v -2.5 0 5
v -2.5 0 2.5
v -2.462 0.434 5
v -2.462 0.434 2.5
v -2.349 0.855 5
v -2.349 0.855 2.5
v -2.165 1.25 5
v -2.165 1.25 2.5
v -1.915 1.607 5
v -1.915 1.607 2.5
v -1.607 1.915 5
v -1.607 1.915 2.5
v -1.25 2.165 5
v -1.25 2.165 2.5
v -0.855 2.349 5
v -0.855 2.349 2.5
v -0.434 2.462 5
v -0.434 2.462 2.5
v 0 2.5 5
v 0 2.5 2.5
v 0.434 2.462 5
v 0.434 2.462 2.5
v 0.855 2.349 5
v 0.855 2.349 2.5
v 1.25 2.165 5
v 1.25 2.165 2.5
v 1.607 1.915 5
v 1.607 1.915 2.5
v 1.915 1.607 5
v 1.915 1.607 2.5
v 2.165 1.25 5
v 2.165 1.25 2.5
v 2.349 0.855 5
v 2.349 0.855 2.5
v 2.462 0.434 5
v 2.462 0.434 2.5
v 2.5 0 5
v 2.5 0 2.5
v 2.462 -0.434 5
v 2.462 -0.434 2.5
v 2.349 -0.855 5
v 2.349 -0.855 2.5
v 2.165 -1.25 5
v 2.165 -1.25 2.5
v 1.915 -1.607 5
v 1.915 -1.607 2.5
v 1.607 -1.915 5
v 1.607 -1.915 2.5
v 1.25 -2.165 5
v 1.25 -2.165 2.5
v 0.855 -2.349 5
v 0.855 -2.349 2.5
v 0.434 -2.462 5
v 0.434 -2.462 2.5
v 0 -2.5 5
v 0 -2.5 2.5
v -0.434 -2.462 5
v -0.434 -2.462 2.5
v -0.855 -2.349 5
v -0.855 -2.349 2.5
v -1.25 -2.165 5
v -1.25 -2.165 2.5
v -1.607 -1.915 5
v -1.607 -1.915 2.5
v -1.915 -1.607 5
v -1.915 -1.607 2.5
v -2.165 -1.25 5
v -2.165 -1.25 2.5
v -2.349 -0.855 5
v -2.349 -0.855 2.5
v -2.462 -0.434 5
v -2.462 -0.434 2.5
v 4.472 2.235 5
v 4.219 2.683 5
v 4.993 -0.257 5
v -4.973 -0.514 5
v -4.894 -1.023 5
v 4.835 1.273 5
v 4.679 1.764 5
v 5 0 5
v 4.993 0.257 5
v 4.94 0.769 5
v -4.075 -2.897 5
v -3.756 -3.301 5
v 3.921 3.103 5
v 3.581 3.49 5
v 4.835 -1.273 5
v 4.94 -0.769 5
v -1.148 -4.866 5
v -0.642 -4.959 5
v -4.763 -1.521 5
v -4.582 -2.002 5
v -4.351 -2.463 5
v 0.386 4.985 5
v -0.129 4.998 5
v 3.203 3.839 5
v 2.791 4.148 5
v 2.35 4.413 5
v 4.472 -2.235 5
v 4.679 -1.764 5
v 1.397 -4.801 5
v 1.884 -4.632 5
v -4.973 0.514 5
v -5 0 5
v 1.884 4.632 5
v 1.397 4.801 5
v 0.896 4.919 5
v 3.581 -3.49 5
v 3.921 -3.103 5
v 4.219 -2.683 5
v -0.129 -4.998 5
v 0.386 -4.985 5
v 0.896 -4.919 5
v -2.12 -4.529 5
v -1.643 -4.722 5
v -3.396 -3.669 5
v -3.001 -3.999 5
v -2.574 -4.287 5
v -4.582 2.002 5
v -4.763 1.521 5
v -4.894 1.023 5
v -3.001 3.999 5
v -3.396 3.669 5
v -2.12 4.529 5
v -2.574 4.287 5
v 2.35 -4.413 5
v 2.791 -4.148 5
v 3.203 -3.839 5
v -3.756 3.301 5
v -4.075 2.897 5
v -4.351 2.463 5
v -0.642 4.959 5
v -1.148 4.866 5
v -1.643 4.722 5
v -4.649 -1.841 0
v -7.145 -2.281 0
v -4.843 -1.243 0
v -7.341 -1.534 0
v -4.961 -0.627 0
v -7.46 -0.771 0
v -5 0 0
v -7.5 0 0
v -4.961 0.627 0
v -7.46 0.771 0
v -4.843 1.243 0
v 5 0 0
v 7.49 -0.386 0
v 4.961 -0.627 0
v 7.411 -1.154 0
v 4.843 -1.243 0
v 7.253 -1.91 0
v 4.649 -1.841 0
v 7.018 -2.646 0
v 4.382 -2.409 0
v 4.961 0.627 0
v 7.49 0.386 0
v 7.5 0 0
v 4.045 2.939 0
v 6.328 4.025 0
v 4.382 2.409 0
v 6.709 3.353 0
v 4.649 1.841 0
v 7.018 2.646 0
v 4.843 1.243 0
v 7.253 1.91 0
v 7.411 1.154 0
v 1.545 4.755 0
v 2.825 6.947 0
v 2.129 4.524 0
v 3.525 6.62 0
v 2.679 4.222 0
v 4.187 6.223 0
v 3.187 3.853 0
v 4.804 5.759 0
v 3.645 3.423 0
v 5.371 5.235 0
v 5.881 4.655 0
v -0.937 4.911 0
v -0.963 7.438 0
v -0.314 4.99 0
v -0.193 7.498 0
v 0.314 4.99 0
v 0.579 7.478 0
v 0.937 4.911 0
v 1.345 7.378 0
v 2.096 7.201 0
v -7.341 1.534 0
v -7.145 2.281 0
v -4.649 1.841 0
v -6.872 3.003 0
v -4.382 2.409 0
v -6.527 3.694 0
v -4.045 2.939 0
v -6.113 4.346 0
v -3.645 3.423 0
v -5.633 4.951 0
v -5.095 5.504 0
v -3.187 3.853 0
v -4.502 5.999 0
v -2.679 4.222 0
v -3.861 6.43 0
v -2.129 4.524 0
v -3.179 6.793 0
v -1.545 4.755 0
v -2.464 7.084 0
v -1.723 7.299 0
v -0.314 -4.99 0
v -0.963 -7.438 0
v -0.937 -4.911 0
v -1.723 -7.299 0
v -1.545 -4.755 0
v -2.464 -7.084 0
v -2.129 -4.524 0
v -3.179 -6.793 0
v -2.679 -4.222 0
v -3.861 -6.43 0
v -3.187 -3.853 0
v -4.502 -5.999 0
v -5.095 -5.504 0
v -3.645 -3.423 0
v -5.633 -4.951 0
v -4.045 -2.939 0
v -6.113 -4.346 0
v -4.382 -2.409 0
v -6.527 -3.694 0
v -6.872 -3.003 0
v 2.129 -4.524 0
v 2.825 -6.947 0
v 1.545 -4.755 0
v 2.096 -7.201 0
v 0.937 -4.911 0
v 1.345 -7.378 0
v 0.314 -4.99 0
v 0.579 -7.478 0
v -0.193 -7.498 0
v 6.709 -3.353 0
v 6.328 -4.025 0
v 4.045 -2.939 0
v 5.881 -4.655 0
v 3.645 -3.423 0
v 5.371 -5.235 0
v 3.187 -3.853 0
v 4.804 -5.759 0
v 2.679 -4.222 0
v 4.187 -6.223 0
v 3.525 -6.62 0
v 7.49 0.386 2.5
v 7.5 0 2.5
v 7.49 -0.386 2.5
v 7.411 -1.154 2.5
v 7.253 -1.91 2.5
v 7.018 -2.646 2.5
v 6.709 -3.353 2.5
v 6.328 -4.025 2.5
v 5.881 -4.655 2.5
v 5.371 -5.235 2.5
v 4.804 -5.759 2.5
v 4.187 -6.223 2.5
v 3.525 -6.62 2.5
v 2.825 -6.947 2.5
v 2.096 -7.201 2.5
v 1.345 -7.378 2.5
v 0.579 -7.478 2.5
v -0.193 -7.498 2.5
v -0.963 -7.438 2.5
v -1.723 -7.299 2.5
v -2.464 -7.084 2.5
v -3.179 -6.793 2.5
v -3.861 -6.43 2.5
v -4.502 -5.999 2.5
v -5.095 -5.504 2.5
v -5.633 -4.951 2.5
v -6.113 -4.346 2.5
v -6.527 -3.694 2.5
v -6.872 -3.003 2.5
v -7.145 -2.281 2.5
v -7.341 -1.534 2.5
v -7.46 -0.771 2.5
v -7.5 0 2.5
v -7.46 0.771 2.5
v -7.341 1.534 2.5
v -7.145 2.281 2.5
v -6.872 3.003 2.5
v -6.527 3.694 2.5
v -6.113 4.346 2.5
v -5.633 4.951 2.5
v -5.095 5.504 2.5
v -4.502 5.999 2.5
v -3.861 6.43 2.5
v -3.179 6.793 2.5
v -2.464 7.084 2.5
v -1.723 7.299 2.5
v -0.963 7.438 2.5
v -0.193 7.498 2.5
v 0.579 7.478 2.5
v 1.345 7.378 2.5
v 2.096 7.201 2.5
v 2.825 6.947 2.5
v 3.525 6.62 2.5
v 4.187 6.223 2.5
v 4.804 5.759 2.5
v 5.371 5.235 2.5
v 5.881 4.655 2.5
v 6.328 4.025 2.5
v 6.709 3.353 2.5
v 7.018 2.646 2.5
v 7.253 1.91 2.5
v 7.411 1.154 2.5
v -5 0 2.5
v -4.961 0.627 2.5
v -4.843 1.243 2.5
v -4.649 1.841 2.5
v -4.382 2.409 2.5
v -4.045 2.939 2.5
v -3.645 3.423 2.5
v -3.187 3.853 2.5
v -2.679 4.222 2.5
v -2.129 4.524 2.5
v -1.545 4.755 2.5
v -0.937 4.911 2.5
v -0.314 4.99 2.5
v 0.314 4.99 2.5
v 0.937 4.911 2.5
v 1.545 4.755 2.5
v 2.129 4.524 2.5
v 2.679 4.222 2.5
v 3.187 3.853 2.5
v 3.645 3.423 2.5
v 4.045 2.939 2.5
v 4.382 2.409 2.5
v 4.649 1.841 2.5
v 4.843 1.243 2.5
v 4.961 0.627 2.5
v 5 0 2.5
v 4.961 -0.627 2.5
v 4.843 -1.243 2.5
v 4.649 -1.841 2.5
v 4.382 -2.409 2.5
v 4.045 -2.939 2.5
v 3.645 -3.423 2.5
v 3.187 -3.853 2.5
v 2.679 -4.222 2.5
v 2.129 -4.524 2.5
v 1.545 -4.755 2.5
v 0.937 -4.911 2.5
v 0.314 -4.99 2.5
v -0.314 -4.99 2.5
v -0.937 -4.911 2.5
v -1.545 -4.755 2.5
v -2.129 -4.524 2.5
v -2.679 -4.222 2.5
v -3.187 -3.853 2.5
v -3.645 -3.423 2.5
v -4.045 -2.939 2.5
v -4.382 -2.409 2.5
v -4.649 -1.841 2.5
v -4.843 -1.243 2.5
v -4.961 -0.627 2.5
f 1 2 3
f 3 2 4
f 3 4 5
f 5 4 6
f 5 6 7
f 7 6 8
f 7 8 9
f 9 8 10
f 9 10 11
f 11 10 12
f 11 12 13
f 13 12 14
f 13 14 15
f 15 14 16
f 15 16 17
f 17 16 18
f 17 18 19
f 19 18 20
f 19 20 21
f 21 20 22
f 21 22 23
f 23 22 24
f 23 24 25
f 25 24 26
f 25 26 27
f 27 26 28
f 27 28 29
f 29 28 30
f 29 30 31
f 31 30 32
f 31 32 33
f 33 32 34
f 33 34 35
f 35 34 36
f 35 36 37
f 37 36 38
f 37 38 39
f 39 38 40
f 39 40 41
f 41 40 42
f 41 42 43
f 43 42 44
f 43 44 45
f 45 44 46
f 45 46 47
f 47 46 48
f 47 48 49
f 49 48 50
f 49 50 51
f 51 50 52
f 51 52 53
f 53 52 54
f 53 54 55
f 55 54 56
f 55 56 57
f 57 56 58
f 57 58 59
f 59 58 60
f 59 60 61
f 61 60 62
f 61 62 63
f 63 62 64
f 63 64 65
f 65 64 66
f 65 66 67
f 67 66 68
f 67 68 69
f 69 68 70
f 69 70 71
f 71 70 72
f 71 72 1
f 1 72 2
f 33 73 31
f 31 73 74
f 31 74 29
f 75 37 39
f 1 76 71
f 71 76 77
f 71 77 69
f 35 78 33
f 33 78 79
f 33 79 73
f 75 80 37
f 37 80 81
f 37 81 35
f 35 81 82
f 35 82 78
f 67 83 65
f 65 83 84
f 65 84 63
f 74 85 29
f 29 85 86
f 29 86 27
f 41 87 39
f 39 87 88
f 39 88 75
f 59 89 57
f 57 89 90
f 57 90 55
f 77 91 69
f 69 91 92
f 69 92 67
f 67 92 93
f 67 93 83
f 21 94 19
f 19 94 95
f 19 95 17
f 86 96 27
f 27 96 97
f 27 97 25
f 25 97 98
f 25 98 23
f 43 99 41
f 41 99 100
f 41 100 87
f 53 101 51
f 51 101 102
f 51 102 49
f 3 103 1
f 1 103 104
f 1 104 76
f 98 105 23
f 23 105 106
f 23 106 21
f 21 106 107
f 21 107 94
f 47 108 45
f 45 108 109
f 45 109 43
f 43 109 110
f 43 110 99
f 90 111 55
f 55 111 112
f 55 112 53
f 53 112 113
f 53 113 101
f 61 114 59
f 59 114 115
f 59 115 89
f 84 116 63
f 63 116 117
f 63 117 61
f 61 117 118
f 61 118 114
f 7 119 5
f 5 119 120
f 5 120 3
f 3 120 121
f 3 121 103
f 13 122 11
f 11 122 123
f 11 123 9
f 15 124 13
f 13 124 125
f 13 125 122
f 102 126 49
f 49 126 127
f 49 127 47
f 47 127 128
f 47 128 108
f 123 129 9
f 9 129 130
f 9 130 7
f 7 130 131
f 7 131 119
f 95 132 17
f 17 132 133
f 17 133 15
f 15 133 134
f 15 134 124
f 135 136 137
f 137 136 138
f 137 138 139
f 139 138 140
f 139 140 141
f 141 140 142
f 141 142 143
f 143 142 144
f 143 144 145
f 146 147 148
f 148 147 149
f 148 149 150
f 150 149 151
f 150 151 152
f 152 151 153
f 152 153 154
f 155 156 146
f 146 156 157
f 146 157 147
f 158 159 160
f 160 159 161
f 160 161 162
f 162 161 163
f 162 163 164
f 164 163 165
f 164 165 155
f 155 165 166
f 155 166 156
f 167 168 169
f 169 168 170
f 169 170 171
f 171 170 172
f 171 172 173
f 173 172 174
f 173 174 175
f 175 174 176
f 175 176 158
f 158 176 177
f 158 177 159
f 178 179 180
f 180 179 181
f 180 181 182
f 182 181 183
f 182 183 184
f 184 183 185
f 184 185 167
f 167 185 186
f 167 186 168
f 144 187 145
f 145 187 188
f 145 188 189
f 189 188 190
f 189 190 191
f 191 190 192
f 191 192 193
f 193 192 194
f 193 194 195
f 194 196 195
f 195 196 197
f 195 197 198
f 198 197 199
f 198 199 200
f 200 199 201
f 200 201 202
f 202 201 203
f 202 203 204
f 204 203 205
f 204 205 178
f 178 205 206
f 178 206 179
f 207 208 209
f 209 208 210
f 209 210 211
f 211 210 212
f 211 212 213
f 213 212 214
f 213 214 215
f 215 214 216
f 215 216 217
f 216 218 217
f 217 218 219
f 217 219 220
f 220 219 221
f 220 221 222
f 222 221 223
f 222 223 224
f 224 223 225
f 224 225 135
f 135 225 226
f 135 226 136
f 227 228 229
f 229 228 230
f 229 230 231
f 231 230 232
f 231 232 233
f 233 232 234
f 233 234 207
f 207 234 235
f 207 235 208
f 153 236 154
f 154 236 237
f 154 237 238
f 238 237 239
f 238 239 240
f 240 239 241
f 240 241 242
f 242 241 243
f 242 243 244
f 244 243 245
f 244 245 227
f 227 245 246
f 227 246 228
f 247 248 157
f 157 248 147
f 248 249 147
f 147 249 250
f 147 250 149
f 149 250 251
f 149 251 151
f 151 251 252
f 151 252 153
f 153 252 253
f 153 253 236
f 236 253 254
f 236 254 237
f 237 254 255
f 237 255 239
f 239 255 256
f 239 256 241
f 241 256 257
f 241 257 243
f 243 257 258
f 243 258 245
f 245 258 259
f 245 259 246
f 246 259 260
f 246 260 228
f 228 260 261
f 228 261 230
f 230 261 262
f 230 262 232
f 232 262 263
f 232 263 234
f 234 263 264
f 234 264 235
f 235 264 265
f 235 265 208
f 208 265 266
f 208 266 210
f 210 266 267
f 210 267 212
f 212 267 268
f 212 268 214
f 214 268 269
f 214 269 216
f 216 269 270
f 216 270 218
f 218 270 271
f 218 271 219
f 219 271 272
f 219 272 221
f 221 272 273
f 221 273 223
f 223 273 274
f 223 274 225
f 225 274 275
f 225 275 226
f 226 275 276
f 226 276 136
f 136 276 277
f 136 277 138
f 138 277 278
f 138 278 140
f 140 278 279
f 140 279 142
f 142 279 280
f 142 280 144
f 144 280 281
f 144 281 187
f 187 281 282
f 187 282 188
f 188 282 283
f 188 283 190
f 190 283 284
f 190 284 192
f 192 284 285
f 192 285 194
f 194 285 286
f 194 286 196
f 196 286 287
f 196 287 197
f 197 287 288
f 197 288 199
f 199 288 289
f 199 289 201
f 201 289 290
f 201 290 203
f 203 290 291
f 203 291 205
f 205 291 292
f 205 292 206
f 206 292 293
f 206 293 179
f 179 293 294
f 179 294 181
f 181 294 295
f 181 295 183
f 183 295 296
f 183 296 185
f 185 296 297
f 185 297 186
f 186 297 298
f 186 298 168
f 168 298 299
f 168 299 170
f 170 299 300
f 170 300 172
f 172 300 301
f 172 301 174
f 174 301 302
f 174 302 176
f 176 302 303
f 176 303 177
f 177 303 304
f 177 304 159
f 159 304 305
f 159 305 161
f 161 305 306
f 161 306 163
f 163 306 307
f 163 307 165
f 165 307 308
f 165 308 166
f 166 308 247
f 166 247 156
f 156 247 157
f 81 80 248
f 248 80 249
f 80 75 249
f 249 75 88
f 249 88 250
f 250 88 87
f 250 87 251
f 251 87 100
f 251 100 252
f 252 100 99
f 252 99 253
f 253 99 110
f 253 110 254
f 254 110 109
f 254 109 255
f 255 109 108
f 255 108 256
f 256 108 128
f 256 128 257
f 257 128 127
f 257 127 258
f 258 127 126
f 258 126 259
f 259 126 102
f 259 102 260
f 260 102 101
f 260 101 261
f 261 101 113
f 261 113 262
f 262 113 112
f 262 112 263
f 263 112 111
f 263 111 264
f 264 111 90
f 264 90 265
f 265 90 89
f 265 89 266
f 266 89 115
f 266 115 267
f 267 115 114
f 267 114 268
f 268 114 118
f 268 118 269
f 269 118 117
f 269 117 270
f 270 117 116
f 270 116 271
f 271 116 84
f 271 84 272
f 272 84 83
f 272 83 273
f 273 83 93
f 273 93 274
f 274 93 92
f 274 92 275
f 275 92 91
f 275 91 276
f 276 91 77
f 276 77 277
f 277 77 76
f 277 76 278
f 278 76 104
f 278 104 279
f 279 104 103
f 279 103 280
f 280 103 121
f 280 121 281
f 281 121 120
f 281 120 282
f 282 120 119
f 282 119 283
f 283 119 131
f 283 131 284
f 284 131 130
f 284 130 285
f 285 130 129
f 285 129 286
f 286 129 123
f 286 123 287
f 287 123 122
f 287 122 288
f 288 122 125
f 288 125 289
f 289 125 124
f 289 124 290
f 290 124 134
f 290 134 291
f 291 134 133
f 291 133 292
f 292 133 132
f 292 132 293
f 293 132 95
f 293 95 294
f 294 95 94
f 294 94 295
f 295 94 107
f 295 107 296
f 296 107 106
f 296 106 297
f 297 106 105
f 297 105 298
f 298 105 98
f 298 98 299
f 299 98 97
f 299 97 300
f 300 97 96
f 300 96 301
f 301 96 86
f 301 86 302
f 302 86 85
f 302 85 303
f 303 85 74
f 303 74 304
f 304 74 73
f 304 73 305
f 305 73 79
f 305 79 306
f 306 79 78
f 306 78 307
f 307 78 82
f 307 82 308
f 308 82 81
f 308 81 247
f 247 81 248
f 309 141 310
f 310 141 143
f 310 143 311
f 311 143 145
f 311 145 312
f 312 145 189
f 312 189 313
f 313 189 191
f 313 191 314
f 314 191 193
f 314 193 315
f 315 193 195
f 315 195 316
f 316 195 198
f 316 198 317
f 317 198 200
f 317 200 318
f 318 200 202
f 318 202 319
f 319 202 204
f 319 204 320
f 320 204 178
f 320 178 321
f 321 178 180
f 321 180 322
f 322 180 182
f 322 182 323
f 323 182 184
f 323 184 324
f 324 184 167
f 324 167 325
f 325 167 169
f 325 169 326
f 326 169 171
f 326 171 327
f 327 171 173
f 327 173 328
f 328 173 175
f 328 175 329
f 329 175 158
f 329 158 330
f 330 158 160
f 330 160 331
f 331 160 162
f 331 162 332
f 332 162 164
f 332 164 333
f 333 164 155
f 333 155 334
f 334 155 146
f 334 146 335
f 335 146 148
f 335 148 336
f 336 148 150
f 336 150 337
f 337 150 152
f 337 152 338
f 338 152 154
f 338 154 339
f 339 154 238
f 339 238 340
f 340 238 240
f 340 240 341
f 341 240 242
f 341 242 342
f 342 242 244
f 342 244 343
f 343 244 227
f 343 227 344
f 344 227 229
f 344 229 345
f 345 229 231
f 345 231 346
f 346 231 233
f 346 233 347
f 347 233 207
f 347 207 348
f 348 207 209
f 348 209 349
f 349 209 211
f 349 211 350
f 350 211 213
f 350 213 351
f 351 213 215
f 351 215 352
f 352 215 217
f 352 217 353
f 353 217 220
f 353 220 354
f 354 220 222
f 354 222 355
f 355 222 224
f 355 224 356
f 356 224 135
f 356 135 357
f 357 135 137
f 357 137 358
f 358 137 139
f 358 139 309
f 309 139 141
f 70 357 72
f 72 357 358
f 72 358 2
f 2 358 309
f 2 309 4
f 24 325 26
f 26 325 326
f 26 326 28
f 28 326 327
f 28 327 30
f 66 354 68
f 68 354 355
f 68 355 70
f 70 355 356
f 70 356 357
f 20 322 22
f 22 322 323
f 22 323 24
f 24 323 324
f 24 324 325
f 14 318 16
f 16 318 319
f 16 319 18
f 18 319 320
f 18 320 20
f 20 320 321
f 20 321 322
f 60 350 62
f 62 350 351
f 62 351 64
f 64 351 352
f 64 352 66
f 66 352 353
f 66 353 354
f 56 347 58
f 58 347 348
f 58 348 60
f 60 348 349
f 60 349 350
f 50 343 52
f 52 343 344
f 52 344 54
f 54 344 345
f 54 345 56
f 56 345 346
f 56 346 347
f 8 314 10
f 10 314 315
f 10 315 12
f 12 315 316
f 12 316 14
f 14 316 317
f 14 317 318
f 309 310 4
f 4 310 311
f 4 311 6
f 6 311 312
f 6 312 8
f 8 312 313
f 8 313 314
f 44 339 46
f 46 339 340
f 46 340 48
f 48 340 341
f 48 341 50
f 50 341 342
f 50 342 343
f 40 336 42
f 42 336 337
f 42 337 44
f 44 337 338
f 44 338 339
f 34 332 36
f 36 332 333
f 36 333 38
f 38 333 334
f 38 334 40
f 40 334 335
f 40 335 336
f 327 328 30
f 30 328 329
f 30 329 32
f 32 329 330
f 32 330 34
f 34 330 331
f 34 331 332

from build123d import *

# Parameters (mm, degrees)
SKETCH1_R           = 7.5
SKETCH1_R_2         = 2.5
BOSS_EXTRUDE1_DEPTH = 5
CHAMFER1_SIZE       = 2.5
SKETCH2_R           = 5
CUT_EXTRUDE1_DEPTH  = 2.5


with BuildPart() as part:
    # Sketch1 → Boss-Extrude1 (new body)
    with BuildSketch(Plane.XY):
        Circle(SKETCH1_R)
        Circle(SKETCH1_R_2, mode=Mode.SUBTRACT)
    extrude(amount=BOSS_EXTRUDE1_DEPTH)

    # Chamfer1
    chamfer1_edges = [part.edges().sort_by_distance(p)[0] for p in [
        (-7.5, 0, 5),
    ]]
    chamfer(chamfer1_edges, length=CHAMFER1_SIZE)

    # Sketch2 → Cut-Extrude1 (cut)
    with BuildSketch(Plane(origin=(0, 0, 0), x_dir=(-1, 0, 0), z_dir=(0, 0, -1))):
        Circle(SKETCH2_R)
    extrude(amount=-CUT_EXTRUDE1_DEPTH, mode=Mode.SUBTRACT)


solid = part.part
